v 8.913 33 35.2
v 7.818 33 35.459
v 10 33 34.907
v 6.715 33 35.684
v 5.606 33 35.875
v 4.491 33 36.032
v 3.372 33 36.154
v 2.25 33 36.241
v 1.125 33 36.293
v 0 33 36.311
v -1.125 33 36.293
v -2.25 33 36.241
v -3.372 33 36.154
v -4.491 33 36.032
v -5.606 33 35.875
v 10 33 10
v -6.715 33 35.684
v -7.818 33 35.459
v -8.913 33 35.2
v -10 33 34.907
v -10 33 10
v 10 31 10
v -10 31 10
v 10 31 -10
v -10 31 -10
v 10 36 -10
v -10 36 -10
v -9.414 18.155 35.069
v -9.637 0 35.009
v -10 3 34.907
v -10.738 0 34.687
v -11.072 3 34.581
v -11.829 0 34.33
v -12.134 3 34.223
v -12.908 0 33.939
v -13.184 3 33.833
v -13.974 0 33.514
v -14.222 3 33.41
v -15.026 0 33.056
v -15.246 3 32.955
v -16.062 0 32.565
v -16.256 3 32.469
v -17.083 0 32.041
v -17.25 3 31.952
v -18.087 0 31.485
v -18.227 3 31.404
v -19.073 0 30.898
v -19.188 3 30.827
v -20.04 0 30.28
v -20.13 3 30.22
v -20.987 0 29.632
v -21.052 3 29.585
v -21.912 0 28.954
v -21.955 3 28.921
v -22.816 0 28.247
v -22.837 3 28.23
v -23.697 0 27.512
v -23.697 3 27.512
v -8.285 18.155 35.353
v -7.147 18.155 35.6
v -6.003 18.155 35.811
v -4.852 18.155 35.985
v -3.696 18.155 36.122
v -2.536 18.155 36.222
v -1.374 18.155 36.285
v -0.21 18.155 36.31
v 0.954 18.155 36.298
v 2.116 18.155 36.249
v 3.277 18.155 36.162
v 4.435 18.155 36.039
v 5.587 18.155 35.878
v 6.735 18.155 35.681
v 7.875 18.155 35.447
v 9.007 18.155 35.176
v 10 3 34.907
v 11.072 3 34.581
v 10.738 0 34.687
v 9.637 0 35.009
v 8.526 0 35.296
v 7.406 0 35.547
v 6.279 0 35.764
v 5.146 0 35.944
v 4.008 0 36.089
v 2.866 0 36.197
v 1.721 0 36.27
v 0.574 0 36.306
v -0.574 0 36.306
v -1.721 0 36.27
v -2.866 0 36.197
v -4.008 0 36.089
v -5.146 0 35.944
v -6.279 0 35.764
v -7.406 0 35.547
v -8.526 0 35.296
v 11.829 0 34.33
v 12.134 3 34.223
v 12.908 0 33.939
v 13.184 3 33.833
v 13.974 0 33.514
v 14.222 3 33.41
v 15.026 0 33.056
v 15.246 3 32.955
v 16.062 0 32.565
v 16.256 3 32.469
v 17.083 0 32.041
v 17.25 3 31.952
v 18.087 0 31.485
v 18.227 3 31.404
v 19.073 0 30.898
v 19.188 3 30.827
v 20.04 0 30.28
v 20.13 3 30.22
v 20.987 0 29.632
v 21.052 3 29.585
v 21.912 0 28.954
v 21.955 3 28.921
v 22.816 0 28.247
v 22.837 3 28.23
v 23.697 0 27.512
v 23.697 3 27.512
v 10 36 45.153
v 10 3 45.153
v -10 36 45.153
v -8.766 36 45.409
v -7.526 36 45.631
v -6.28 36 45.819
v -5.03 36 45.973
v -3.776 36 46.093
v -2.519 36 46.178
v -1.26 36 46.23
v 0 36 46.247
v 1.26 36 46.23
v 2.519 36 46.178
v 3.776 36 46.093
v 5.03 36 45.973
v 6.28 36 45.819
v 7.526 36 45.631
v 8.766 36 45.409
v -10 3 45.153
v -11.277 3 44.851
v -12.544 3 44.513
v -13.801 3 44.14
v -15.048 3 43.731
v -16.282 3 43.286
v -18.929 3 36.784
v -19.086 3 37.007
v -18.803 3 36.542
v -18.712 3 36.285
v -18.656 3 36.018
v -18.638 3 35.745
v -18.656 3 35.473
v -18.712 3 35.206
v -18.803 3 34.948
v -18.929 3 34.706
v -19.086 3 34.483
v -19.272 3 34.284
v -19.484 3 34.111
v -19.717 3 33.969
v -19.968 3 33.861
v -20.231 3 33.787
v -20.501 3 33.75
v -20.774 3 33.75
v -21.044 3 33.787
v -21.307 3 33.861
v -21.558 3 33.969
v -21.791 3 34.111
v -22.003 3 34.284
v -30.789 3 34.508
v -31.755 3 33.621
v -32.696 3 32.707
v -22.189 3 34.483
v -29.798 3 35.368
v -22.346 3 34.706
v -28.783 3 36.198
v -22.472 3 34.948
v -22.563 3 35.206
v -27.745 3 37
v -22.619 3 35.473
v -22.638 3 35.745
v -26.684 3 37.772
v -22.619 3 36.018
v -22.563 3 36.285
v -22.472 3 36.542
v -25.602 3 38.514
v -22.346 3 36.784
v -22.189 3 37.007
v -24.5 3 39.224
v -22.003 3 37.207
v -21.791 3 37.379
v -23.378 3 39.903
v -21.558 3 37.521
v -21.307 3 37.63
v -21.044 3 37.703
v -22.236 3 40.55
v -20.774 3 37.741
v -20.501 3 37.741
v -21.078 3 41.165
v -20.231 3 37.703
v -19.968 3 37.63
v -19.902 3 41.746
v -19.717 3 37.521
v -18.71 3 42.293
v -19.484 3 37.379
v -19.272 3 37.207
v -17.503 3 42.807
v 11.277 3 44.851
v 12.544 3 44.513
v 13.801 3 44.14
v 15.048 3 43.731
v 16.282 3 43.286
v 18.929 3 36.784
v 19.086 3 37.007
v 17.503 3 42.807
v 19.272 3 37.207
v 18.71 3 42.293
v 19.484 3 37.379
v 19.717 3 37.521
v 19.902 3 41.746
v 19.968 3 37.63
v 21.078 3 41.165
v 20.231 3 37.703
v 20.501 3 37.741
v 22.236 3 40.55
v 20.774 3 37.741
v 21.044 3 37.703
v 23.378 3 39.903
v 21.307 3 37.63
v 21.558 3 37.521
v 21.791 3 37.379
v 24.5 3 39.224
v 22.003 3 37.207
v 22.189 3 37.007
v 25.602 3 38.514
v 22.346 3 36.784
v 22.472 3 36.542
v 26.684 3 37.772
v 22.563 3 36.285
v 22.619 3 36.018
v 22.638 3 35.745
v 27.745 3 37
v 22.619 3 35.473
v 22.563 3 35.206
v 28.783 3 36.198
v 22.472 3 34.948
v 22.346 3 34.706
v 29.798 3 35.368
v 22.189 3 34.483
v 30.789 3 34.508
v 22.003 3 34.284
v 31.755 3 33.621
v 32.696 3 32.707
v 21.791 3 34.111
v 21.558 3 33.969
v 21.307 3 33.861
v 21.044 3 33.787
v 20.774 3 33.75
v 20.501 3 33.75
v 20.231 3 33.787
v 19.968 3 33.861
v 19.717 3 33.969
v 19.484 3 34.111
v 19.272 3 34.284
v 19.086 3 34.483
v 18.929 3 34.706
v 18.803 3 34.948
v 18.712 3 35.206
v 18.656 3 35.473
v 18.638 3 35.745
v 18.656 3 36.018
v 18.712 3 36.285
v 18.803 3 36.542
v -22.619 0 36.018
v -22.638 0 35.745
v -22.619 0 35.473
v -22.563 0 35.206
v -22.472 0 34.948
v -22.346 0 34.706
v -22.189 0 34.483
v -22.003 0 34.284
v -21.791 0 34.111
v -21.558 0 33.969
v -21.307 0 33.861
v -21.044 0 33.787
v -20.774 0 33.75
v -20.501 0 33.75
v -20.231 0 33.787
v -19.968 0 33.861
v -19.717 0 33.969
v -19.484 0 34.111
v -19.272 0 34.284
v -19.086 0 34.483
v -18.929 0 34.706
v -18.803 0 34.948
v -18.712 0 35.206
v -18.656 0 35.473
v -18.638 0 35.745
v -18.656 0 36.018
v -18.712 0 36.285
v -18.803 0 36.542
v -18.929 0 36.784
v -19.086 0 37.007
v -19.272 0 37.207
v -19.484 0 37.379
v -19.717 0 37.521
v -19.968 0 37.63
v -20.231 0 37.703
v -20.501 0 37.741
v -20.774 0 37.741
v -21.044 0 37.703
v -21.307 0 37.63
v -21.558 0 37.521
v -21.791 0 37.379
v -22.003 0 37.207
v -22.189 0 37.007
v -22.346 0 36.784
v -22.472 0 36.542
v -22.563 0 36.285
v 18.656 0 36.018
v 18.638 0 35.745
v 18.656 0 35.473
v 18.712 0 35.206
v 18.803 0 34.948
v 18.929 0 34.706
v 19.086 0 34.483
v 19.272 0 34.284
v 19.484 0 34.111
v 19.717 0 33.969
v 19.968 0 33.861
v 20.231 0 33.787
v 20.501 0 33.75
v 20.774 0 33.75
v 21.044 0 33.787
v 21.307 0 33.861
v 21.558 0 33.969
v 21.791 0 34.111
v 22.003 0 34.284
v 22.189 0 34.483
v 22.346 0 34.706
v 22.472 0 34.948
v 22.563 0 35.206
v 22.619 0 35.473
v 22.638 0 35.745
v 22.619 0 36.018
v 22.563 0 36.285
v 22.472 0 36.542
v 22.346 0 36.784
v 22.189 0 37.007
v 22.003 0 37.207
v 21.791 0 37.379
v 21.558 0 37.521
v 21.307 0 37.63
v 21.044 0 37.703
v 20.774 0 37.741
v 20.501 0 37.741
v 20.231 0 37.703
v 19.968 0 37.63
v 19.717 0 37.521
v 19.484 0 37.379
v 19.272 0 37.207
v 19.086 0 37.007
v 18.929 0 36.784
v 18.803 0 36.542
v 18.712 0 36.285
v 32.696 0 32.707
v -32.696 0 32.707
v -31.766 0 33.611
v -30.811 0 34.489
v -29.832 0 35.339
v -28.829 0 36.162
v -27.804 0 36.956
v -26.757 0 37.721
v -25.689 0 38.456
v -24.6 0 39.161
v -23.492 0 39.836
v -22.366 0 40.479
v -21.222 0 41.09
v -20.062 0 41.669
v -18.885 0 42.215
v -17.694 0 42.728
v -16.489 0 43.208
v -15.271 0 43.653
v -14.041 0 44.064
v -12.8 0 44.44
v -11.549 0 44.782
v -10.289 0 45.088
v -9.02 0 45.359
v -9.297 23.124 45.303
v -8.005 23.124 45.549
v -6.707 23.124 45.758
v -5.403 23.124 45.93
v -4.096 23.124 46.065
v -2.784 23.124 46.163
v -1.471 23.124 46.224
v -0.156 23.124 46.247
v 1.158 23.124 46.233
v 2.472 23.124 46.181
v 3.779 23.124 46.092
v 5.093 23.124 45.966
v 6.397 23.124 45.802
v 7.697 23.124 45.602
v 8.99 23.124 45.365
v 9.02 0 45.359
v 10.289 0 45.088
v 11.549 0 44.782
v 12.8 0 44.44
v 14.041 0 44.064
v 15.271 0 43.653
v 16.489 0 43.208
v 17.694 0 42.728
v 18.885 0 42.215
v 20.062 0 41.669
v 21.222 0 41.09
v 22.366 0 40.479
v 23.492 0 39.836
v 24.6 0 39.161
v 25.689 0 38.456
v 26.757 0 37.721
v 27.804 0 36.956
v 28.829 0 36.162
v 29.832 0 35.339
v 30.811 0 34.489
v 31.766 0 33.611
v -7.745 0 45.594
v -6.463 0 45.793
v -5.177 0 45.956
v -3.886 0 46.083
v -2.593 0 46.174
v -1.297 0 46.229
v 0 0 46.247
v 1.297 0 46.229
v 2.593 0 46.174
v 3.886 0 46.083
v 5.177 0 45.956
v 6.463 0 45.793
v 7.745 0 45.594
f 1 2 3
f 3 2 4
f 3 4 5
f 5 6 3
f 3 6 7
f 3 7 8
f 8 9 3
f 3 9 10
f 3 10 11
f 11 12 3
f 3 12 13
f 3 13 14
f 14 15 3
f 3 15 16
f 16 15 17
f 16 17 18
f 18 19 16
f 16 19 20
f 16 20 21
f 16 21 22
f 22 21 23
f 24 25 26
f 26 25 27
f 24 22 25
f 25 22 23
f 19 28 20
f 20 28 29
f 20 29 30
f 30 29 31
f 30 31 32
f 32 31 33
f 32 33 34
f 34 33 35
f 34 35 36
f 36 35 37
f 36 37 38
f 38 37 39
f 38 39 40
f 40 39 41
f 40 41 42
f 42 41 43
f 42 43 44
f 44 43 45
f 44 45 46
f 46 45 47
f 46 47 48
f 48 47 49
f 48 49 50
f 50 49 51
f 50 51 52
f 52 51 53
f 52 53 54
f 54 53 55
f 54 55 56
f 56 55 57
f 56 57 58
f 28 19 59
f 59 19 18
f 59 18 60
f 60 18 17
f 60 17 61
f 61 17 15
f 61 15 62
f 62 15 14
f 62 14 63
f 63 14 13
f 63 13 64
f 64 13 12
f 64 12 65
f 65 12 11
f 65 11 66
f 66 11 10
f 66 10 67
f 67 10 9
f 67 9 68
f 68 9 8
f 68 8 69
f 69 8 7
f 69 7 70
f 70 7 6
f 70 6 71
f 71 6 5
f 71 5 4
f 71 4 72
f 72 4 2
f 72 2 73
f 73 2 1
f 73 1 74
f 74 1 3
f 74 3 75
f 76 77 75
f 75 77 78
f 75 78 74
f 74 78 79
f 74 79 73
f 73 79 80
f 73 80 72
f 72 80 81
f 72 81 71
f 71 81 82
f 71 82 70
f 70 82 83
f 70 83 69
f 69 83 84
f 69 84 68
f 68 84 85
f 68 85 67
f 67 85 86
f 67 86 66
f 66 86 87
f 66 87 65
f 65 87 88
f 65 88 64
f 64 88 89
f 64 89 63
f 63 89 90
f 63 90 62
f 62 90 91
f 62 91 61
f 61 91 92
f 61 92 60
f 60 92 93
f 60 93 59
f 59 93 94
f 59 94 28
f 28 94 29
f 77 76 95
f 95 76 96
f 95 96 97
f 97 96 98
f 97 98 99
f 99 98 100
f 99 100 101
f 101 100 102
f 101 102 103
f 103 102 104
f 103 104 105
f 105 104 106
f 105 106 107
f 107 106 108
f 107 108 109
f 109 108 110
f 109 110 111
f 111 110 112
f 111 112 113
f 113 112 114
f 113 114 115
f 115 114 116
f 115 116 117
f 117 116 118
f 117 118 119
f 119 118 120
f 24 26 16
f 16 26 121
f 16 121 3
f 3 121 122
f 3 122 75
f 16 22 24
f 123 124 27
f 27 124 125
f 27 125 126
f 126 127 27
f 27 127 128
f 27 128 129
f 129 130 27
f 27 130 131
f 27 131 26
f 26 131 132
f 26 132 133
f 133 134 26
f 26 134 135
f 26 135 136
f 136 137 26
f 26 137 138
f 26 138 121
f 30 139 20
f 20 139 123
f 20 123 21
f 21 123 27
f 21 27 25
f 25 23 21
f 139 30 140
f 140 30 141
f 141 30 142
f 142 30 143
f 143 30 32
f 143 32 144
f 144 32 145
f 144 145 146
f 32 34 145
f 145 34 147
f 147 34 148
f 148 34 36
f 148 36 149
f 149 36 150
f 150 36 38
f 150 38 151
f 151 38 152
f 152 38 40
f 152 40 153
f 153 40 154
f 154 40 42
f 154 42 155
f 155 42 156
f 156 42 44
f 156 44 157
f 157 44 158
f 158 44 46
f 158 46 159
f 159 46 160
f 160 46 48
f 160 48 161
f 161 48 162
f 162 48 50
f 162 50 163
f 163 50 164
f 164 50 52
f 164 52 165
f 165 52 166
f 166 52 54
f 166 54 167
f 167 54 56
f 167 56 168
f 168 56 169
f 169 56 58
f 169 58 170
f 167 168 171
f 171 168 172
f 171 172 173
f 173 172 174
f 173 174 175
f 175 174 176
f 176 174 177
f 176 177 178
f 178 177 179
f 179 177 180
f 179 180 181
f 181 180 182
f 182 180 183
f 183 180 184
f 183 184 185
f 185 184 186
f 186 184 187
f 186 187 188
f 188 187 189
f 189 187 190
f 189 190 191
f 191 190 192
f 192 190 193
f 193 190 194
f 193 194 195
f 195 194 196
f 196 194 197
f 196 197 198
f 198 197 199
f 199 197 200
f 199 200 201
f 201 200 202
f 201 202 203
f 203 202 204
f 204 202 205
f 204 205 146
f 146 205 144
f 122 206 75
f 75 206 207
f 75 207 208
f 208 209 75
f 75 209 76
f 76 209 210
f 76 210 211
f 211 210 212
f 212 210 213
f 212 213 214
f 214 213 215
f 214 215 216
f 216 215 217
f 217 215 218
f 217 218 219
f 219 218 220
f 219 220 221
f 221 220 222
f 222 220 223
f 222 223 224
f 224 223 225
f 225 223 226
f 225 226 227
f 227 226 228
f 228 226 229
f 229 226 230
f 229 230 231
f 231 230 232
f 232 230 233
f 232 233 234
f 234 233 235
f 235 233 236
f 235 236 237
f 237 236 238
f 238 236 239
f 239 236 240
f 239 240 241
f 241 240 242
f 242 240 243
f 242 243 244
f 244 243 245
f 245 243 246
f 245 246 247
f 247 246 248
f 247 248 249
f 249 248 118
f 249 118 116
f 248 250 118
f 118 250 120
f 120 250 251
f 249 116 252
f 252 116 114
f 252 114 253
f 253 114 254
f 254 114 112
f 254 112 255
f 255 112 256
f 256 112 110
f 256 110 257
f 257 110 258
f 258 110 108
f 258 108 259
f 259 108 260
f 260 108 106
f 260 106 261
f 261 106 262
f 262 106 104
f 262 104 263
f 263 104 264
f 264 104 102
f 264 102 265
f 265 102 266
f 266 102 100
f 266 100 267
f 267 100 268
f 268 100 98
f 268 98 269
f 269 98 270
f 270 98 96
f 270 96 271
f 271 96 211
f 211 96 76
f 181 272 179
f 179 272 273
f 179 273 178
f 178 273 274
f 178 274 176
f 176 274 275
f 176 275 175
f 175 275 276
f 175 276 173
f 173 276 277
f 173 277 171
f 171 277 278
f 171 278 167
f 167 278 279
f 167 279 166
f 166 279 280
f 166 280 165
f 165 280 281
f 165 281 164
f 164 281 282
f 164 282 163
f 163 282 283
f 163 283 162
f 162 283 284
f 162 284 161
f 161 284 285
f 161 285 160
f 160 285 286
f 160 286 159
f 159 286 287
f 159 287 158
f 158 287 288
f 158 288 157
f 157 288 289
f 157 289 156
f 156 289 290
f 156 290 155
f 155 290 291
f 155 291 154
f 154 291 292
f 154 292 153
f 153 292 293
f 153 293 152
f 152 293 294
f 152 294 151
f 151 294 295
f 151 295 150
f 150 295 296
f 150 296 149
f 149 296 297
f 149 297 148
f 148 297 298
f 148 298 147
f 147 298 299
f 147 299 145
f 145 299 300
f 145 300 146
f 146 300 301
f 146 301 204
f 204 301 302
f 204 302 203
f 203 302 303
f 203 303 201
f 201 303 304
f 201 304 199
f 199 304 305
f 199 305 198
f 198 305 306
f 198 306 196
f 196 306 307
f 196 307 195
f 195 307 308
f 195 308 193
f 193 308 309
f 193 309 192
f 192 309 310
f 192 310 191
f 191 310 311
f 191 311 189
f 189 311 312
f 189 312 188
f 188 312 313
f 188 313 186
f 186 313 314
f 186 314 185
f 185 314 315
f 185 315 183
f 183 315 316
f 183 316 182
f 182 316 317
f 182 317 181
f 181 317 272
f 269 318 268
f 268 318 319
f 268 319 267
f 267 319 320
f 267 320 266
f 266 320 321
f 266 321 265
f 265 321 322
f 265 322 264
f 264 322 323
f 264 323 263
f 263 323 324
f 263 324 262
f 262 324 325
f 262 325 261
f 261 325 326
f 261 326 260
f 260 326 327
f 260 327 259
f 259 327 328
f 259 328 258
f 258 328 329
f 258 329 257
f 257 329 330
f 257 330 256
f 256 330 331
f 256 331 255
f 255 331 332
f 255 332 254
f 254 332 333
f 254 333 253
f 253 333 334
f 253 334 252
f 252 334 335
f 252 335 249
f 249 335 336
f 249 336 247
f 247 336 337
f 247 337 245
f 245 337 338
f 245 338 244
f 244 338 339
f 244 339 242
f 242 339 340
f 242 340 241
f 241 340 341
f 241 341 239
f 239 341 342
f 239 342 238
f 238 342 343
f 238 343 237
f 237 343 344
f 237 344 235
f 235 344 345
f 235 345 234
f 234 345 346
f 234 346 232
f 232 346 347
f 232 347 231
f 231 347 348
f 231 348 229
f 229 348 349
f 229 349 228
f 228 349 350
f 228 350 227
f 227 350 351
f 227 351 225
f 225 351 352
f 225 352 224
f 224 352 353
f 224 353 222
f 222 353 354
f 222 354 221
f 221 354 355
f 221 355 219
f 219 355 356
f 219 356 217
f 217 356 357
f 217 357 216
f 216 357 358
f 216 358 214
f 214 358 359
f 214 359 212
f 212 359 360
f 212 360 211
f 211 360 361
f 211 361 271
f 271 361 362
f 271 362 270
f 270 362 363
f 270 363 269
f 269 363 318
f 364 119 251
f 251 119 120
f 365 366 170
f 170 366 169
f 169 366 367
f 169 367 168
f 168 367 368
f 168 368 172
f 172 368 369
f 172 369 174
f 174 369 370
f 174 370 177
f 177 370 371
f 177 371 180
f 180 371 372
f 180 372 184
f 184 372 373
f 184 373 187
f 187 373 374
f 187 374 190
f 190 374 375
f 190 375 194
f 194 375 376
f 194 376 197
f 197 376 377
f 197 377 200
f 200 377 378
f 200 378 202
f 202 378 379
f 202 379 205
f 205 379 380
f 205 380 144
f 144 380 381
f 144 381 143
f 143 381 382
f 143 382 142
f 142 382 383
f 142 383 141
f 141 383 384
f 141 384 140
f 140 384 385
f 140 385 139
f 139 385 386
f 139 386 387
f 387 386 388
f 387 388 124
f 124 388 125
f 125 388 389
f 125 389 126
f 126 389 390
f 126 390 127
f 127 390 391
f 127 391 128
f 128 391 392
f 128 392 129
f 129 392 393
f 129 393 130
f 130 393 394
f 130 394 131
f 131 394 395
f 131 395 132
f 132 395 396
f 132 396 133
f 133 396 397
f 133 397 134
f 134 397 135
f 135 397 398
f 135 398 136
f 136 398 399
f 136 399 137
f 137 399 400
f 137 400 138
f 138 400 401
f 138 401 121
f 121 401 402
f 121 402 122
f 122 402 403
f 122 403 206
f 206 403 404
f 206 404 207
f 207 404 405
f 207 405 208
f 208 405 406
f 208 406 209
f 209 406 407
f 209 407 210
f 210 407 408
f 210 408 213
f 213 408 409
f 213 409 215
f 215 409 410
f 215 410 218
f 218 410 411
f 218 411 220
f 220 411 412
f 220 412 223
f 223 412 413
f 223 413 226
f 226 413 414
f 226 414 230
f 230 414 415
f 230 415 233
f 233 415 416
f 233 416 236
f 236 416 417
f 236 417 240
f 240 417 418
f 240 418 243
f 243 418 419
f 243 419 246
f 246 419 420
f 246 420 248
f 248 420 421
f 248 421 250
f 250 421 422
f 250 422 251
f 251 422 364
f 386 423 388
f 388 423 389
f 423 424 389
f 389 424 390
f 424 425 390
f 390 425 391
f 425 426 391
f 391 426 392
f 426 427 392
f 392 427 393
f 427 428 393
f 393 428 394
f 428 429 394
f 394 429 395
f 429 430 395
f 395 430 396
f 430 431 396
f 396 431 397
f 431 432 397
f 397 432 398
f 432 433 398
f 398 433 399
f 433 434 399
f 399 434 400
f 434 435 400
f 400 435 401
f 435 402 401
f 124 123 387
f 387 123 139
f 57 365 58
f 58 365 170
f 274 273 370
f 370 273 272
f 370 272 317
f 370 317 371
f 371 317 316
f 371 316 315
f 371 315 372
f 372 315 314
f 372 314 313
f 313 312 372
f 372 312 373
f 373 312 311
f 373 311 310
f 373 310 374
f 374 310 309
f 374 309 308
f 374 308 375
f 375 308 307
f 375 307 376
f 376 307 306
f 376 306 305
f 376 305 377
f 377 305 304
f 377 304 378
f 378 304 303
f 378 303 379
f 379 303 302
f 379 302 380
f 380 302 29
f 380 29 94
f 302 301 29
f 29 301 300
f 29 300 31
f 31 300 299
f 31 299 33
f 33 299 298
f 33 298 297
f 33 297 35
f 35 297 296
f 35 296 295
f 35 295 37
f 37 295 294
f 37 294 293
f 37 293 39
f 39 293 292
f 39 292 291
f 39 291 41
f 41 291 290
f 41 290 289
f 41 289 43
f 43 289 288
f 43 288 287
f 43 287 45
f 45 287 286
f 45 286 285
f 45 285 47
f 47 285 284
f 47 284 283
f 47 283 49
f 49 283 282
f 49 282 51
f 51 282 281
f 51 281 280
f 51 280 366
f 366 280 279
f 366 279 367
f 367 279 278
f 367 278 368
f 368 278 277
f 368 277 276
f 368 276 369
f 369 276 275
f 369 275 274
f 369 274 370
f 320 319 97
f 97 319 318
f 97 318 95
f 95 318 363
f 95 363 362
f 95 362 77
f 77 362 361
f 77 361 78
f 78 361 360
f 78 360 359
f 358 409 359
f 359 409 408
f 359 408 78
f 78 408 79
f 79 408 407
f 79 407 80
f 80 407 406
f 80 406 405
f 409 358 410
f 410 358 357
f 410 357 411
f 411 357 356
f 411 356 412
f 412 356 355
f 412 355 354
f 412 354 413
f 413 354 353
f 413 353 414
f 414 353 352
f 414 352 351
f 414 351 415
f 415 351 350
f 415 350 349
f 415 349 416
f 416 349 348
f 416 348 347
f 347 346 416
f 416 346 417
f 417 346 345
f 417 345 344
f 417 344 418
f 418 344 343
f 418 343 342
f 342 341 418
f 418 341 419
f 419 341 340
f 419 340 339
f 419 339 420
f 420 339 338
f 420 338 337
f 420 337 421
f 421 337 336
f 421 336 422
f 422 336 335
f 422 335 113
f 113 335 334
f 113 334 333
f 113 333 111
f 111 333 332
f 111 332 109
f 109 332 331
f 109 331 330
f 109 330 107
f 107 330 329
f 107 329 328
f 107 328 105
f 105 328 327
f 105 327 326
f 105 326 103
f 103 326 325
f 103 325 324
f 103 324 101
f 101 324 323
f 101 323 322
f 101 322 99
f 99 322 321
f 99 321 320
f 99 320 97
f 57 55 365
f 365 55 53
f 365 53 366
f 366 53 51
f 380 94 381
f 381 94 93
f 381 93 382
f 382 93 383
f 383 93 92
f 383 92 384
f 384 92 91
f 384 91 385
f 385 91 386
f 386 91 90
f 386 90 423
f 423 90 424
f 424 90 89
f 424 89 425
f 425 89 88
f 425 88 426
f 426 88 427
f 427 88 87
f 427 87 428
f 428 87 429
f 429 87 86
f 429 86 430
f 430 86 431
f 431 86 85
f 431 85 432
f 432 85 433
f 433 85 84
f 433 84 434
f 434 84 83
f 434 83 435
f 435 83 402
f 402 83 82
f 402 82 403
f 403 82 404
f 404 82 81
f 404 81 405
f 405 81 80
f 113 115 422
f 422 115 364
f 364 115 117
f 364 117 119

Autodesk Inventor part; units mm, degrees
ref_plane "YZ Plane" through (0, 0, 0) normal (1, 0, 0) x (0, 1, 0)
ref_plane "XZ Plane" through (0, 0, 0) normal (0, 1, 0) x (-1, 0, 0)
ref_plane "XY Plane" through (0, 0, 0) normal (0, 0, 1) x (1, 0, 0)
sketch "Sketch1" plane through (0, 0, 0) normal (0, 1, 0) x (-1, 0, 0)
  circle A0 centre (-20.6375, 35.7452) radius 2
  circle A1 centre (20.6375, 35.7452) radius 2
  line L0 (0, -10) -> (-10, -10)
  line L1 (-10, -10) -> (-10, 10)
  line L2 (-10, 10) -> (10, 10)
  line L3 (10, 10) -> (10, -10)
  line L4 (10, -10) -> (0, -10)
  arc A2 (23.6974, 27.5118) -> (-23.6974, 27.5118) centre (0, 0) ccw
  arc A3 (32.696, 32.7072) -> (-32.696, 32.7072) centre (0, 0) ccw
  line L5 (20.6375, 35.7452) -> (29.2978, 40.7452) construction
  line L6 (32.696, 32.7072) -> (23.6974, 27.5118)
  arc A4 (32.696, 32.7072) -> (-32.696, 32.7072) centre (0, 0) ccw
  line L7 (0, -10) -> (0, 10)
  line L8 (-32.696, 32.7072) -> (-23.6974, 27.5118)
  arc A5 (28.2185, 30.1221) -> (-28.2185, 30.1221) centre (0, 0) ccw
  dimension "d11" = 10
  dimension "d12" = 20
  dimension "d13" = 20
  dimension "d14" = 20
extrude "Extrusion11" add sketch "Sketch1" along normal blind 3 contours A0 A5 A1 L6 A2 L8 | A0 A5 L8 A3 L6 A1
sketch "Sketch6" plane through (0, 3, 0) normal (0, 1, 0) x (1, 0, 0)
  point P0 (0, 0)
sketch "Sketch7" plane through (0, 3, 0) normal (0, 1, 0) x (1, 0, 0)
  arc A0 (-10, -34.9065) -> (10, -34.9065) centre (0, 0) ccw
  arc A1 (-32.696, -32.7072) -> (32.696, -32.7072) centre (0, 0) ccw projected
  arc A2 (-23.6974, -27.5118) -> (23.6974, -27.5118) centre (0, 0) ccw projected
  line L0 (0, 0) -> (-10, 0)
  line L1 (10, -34.9065) -> (10, -45.1529)
  line L2 (-10, -34.9065) -> (-10, -45.1529)
  line L3 (-10, 0) -> (40, 0) construction
  arc A3 (-10, -45.1529) -> (10, -45.1529) centre (0, 0) ccw
extrude "Extrusion12" add sketch "Sketch7" along normal blind 28
sketch "Sketch8" plane through (0, 31, 0) normal (0, 1, 0) x (1, 0, 0)
  arc A0 (-10, -34.9065) -> (10, -34.9065) centre (0, 0) ccw
  arc A1 (-10, -45.1529) -> (10, -45.1529) centre (0, 0) ccw
  line L0 (10, -34.9065) -> (10, -45.1529) projected
  line L1 (10, -34.9065) -> (10, -45.1529)
  arc A2 (-23.6974, -27.5118) -> (23.6974, -27.5118) centre (0, 0) ccw projected
  line L2 (-10, -34.9065) -> (-10, -45.1529)
  arc A3 (-32.696, -32.7072) -> (32.696, -32.7072) centre (0, 0) ccw projected
extrude "Extrusion13" add sketch "Sketch8" along normal blind 5
sketch "Sketch9" plane through (0, 36, 0) normal (0, 1, 0) x (1, 0, 0)
  line L0 (0, 0) -> (0, 10)
  line L1 (0, 10) -> (10, 10)
  line L2 (10, 10) -> (10, -10)
  line L3 (10, -10) -> (-10, -10)
  line L4 (-10, -10) -> (-10, 10)
  line L5 (-10, 10) -> (0, 10)
  dimension "d63" = 10
  dimension "d64" = 10
  dimension "d65" = 20
  dimension "d66" = 20
  dimension "d67" = 20
extrude "Extrusion14" add sketch "Sketch9" against normal blind 5
sketch "Sketch10" plane through (10, 36, -10) normal (0, 0, -1) x (-1, 0, 0)
  line L0 (0, 0) -> (20, 0) projected
  line L1 (20, 0) -> (20, -3)
  line L2 (20, -33) -> (20, 0) projected
  line L3 (20, -3) -> (0, -3)
  line L4 (20, -5) -> (0, -5) projected
  line L5 (0, -33) -> (0, 0) projected
  line L6 (0, -3) -> (0, 0)
  line L7 (0, 0) -> (20, 0)
  point P0 (10, -36)
  dimension "d70" = 3
  dimension "d71" = 20
  dimension "d72" = 90
extrude "Extrusion15" add sketch "Sketch10" against normal blind 50 contours L0 L1 L3 L5
properties part number "Corona_Cam_Setup_Tool._v2ipt"
